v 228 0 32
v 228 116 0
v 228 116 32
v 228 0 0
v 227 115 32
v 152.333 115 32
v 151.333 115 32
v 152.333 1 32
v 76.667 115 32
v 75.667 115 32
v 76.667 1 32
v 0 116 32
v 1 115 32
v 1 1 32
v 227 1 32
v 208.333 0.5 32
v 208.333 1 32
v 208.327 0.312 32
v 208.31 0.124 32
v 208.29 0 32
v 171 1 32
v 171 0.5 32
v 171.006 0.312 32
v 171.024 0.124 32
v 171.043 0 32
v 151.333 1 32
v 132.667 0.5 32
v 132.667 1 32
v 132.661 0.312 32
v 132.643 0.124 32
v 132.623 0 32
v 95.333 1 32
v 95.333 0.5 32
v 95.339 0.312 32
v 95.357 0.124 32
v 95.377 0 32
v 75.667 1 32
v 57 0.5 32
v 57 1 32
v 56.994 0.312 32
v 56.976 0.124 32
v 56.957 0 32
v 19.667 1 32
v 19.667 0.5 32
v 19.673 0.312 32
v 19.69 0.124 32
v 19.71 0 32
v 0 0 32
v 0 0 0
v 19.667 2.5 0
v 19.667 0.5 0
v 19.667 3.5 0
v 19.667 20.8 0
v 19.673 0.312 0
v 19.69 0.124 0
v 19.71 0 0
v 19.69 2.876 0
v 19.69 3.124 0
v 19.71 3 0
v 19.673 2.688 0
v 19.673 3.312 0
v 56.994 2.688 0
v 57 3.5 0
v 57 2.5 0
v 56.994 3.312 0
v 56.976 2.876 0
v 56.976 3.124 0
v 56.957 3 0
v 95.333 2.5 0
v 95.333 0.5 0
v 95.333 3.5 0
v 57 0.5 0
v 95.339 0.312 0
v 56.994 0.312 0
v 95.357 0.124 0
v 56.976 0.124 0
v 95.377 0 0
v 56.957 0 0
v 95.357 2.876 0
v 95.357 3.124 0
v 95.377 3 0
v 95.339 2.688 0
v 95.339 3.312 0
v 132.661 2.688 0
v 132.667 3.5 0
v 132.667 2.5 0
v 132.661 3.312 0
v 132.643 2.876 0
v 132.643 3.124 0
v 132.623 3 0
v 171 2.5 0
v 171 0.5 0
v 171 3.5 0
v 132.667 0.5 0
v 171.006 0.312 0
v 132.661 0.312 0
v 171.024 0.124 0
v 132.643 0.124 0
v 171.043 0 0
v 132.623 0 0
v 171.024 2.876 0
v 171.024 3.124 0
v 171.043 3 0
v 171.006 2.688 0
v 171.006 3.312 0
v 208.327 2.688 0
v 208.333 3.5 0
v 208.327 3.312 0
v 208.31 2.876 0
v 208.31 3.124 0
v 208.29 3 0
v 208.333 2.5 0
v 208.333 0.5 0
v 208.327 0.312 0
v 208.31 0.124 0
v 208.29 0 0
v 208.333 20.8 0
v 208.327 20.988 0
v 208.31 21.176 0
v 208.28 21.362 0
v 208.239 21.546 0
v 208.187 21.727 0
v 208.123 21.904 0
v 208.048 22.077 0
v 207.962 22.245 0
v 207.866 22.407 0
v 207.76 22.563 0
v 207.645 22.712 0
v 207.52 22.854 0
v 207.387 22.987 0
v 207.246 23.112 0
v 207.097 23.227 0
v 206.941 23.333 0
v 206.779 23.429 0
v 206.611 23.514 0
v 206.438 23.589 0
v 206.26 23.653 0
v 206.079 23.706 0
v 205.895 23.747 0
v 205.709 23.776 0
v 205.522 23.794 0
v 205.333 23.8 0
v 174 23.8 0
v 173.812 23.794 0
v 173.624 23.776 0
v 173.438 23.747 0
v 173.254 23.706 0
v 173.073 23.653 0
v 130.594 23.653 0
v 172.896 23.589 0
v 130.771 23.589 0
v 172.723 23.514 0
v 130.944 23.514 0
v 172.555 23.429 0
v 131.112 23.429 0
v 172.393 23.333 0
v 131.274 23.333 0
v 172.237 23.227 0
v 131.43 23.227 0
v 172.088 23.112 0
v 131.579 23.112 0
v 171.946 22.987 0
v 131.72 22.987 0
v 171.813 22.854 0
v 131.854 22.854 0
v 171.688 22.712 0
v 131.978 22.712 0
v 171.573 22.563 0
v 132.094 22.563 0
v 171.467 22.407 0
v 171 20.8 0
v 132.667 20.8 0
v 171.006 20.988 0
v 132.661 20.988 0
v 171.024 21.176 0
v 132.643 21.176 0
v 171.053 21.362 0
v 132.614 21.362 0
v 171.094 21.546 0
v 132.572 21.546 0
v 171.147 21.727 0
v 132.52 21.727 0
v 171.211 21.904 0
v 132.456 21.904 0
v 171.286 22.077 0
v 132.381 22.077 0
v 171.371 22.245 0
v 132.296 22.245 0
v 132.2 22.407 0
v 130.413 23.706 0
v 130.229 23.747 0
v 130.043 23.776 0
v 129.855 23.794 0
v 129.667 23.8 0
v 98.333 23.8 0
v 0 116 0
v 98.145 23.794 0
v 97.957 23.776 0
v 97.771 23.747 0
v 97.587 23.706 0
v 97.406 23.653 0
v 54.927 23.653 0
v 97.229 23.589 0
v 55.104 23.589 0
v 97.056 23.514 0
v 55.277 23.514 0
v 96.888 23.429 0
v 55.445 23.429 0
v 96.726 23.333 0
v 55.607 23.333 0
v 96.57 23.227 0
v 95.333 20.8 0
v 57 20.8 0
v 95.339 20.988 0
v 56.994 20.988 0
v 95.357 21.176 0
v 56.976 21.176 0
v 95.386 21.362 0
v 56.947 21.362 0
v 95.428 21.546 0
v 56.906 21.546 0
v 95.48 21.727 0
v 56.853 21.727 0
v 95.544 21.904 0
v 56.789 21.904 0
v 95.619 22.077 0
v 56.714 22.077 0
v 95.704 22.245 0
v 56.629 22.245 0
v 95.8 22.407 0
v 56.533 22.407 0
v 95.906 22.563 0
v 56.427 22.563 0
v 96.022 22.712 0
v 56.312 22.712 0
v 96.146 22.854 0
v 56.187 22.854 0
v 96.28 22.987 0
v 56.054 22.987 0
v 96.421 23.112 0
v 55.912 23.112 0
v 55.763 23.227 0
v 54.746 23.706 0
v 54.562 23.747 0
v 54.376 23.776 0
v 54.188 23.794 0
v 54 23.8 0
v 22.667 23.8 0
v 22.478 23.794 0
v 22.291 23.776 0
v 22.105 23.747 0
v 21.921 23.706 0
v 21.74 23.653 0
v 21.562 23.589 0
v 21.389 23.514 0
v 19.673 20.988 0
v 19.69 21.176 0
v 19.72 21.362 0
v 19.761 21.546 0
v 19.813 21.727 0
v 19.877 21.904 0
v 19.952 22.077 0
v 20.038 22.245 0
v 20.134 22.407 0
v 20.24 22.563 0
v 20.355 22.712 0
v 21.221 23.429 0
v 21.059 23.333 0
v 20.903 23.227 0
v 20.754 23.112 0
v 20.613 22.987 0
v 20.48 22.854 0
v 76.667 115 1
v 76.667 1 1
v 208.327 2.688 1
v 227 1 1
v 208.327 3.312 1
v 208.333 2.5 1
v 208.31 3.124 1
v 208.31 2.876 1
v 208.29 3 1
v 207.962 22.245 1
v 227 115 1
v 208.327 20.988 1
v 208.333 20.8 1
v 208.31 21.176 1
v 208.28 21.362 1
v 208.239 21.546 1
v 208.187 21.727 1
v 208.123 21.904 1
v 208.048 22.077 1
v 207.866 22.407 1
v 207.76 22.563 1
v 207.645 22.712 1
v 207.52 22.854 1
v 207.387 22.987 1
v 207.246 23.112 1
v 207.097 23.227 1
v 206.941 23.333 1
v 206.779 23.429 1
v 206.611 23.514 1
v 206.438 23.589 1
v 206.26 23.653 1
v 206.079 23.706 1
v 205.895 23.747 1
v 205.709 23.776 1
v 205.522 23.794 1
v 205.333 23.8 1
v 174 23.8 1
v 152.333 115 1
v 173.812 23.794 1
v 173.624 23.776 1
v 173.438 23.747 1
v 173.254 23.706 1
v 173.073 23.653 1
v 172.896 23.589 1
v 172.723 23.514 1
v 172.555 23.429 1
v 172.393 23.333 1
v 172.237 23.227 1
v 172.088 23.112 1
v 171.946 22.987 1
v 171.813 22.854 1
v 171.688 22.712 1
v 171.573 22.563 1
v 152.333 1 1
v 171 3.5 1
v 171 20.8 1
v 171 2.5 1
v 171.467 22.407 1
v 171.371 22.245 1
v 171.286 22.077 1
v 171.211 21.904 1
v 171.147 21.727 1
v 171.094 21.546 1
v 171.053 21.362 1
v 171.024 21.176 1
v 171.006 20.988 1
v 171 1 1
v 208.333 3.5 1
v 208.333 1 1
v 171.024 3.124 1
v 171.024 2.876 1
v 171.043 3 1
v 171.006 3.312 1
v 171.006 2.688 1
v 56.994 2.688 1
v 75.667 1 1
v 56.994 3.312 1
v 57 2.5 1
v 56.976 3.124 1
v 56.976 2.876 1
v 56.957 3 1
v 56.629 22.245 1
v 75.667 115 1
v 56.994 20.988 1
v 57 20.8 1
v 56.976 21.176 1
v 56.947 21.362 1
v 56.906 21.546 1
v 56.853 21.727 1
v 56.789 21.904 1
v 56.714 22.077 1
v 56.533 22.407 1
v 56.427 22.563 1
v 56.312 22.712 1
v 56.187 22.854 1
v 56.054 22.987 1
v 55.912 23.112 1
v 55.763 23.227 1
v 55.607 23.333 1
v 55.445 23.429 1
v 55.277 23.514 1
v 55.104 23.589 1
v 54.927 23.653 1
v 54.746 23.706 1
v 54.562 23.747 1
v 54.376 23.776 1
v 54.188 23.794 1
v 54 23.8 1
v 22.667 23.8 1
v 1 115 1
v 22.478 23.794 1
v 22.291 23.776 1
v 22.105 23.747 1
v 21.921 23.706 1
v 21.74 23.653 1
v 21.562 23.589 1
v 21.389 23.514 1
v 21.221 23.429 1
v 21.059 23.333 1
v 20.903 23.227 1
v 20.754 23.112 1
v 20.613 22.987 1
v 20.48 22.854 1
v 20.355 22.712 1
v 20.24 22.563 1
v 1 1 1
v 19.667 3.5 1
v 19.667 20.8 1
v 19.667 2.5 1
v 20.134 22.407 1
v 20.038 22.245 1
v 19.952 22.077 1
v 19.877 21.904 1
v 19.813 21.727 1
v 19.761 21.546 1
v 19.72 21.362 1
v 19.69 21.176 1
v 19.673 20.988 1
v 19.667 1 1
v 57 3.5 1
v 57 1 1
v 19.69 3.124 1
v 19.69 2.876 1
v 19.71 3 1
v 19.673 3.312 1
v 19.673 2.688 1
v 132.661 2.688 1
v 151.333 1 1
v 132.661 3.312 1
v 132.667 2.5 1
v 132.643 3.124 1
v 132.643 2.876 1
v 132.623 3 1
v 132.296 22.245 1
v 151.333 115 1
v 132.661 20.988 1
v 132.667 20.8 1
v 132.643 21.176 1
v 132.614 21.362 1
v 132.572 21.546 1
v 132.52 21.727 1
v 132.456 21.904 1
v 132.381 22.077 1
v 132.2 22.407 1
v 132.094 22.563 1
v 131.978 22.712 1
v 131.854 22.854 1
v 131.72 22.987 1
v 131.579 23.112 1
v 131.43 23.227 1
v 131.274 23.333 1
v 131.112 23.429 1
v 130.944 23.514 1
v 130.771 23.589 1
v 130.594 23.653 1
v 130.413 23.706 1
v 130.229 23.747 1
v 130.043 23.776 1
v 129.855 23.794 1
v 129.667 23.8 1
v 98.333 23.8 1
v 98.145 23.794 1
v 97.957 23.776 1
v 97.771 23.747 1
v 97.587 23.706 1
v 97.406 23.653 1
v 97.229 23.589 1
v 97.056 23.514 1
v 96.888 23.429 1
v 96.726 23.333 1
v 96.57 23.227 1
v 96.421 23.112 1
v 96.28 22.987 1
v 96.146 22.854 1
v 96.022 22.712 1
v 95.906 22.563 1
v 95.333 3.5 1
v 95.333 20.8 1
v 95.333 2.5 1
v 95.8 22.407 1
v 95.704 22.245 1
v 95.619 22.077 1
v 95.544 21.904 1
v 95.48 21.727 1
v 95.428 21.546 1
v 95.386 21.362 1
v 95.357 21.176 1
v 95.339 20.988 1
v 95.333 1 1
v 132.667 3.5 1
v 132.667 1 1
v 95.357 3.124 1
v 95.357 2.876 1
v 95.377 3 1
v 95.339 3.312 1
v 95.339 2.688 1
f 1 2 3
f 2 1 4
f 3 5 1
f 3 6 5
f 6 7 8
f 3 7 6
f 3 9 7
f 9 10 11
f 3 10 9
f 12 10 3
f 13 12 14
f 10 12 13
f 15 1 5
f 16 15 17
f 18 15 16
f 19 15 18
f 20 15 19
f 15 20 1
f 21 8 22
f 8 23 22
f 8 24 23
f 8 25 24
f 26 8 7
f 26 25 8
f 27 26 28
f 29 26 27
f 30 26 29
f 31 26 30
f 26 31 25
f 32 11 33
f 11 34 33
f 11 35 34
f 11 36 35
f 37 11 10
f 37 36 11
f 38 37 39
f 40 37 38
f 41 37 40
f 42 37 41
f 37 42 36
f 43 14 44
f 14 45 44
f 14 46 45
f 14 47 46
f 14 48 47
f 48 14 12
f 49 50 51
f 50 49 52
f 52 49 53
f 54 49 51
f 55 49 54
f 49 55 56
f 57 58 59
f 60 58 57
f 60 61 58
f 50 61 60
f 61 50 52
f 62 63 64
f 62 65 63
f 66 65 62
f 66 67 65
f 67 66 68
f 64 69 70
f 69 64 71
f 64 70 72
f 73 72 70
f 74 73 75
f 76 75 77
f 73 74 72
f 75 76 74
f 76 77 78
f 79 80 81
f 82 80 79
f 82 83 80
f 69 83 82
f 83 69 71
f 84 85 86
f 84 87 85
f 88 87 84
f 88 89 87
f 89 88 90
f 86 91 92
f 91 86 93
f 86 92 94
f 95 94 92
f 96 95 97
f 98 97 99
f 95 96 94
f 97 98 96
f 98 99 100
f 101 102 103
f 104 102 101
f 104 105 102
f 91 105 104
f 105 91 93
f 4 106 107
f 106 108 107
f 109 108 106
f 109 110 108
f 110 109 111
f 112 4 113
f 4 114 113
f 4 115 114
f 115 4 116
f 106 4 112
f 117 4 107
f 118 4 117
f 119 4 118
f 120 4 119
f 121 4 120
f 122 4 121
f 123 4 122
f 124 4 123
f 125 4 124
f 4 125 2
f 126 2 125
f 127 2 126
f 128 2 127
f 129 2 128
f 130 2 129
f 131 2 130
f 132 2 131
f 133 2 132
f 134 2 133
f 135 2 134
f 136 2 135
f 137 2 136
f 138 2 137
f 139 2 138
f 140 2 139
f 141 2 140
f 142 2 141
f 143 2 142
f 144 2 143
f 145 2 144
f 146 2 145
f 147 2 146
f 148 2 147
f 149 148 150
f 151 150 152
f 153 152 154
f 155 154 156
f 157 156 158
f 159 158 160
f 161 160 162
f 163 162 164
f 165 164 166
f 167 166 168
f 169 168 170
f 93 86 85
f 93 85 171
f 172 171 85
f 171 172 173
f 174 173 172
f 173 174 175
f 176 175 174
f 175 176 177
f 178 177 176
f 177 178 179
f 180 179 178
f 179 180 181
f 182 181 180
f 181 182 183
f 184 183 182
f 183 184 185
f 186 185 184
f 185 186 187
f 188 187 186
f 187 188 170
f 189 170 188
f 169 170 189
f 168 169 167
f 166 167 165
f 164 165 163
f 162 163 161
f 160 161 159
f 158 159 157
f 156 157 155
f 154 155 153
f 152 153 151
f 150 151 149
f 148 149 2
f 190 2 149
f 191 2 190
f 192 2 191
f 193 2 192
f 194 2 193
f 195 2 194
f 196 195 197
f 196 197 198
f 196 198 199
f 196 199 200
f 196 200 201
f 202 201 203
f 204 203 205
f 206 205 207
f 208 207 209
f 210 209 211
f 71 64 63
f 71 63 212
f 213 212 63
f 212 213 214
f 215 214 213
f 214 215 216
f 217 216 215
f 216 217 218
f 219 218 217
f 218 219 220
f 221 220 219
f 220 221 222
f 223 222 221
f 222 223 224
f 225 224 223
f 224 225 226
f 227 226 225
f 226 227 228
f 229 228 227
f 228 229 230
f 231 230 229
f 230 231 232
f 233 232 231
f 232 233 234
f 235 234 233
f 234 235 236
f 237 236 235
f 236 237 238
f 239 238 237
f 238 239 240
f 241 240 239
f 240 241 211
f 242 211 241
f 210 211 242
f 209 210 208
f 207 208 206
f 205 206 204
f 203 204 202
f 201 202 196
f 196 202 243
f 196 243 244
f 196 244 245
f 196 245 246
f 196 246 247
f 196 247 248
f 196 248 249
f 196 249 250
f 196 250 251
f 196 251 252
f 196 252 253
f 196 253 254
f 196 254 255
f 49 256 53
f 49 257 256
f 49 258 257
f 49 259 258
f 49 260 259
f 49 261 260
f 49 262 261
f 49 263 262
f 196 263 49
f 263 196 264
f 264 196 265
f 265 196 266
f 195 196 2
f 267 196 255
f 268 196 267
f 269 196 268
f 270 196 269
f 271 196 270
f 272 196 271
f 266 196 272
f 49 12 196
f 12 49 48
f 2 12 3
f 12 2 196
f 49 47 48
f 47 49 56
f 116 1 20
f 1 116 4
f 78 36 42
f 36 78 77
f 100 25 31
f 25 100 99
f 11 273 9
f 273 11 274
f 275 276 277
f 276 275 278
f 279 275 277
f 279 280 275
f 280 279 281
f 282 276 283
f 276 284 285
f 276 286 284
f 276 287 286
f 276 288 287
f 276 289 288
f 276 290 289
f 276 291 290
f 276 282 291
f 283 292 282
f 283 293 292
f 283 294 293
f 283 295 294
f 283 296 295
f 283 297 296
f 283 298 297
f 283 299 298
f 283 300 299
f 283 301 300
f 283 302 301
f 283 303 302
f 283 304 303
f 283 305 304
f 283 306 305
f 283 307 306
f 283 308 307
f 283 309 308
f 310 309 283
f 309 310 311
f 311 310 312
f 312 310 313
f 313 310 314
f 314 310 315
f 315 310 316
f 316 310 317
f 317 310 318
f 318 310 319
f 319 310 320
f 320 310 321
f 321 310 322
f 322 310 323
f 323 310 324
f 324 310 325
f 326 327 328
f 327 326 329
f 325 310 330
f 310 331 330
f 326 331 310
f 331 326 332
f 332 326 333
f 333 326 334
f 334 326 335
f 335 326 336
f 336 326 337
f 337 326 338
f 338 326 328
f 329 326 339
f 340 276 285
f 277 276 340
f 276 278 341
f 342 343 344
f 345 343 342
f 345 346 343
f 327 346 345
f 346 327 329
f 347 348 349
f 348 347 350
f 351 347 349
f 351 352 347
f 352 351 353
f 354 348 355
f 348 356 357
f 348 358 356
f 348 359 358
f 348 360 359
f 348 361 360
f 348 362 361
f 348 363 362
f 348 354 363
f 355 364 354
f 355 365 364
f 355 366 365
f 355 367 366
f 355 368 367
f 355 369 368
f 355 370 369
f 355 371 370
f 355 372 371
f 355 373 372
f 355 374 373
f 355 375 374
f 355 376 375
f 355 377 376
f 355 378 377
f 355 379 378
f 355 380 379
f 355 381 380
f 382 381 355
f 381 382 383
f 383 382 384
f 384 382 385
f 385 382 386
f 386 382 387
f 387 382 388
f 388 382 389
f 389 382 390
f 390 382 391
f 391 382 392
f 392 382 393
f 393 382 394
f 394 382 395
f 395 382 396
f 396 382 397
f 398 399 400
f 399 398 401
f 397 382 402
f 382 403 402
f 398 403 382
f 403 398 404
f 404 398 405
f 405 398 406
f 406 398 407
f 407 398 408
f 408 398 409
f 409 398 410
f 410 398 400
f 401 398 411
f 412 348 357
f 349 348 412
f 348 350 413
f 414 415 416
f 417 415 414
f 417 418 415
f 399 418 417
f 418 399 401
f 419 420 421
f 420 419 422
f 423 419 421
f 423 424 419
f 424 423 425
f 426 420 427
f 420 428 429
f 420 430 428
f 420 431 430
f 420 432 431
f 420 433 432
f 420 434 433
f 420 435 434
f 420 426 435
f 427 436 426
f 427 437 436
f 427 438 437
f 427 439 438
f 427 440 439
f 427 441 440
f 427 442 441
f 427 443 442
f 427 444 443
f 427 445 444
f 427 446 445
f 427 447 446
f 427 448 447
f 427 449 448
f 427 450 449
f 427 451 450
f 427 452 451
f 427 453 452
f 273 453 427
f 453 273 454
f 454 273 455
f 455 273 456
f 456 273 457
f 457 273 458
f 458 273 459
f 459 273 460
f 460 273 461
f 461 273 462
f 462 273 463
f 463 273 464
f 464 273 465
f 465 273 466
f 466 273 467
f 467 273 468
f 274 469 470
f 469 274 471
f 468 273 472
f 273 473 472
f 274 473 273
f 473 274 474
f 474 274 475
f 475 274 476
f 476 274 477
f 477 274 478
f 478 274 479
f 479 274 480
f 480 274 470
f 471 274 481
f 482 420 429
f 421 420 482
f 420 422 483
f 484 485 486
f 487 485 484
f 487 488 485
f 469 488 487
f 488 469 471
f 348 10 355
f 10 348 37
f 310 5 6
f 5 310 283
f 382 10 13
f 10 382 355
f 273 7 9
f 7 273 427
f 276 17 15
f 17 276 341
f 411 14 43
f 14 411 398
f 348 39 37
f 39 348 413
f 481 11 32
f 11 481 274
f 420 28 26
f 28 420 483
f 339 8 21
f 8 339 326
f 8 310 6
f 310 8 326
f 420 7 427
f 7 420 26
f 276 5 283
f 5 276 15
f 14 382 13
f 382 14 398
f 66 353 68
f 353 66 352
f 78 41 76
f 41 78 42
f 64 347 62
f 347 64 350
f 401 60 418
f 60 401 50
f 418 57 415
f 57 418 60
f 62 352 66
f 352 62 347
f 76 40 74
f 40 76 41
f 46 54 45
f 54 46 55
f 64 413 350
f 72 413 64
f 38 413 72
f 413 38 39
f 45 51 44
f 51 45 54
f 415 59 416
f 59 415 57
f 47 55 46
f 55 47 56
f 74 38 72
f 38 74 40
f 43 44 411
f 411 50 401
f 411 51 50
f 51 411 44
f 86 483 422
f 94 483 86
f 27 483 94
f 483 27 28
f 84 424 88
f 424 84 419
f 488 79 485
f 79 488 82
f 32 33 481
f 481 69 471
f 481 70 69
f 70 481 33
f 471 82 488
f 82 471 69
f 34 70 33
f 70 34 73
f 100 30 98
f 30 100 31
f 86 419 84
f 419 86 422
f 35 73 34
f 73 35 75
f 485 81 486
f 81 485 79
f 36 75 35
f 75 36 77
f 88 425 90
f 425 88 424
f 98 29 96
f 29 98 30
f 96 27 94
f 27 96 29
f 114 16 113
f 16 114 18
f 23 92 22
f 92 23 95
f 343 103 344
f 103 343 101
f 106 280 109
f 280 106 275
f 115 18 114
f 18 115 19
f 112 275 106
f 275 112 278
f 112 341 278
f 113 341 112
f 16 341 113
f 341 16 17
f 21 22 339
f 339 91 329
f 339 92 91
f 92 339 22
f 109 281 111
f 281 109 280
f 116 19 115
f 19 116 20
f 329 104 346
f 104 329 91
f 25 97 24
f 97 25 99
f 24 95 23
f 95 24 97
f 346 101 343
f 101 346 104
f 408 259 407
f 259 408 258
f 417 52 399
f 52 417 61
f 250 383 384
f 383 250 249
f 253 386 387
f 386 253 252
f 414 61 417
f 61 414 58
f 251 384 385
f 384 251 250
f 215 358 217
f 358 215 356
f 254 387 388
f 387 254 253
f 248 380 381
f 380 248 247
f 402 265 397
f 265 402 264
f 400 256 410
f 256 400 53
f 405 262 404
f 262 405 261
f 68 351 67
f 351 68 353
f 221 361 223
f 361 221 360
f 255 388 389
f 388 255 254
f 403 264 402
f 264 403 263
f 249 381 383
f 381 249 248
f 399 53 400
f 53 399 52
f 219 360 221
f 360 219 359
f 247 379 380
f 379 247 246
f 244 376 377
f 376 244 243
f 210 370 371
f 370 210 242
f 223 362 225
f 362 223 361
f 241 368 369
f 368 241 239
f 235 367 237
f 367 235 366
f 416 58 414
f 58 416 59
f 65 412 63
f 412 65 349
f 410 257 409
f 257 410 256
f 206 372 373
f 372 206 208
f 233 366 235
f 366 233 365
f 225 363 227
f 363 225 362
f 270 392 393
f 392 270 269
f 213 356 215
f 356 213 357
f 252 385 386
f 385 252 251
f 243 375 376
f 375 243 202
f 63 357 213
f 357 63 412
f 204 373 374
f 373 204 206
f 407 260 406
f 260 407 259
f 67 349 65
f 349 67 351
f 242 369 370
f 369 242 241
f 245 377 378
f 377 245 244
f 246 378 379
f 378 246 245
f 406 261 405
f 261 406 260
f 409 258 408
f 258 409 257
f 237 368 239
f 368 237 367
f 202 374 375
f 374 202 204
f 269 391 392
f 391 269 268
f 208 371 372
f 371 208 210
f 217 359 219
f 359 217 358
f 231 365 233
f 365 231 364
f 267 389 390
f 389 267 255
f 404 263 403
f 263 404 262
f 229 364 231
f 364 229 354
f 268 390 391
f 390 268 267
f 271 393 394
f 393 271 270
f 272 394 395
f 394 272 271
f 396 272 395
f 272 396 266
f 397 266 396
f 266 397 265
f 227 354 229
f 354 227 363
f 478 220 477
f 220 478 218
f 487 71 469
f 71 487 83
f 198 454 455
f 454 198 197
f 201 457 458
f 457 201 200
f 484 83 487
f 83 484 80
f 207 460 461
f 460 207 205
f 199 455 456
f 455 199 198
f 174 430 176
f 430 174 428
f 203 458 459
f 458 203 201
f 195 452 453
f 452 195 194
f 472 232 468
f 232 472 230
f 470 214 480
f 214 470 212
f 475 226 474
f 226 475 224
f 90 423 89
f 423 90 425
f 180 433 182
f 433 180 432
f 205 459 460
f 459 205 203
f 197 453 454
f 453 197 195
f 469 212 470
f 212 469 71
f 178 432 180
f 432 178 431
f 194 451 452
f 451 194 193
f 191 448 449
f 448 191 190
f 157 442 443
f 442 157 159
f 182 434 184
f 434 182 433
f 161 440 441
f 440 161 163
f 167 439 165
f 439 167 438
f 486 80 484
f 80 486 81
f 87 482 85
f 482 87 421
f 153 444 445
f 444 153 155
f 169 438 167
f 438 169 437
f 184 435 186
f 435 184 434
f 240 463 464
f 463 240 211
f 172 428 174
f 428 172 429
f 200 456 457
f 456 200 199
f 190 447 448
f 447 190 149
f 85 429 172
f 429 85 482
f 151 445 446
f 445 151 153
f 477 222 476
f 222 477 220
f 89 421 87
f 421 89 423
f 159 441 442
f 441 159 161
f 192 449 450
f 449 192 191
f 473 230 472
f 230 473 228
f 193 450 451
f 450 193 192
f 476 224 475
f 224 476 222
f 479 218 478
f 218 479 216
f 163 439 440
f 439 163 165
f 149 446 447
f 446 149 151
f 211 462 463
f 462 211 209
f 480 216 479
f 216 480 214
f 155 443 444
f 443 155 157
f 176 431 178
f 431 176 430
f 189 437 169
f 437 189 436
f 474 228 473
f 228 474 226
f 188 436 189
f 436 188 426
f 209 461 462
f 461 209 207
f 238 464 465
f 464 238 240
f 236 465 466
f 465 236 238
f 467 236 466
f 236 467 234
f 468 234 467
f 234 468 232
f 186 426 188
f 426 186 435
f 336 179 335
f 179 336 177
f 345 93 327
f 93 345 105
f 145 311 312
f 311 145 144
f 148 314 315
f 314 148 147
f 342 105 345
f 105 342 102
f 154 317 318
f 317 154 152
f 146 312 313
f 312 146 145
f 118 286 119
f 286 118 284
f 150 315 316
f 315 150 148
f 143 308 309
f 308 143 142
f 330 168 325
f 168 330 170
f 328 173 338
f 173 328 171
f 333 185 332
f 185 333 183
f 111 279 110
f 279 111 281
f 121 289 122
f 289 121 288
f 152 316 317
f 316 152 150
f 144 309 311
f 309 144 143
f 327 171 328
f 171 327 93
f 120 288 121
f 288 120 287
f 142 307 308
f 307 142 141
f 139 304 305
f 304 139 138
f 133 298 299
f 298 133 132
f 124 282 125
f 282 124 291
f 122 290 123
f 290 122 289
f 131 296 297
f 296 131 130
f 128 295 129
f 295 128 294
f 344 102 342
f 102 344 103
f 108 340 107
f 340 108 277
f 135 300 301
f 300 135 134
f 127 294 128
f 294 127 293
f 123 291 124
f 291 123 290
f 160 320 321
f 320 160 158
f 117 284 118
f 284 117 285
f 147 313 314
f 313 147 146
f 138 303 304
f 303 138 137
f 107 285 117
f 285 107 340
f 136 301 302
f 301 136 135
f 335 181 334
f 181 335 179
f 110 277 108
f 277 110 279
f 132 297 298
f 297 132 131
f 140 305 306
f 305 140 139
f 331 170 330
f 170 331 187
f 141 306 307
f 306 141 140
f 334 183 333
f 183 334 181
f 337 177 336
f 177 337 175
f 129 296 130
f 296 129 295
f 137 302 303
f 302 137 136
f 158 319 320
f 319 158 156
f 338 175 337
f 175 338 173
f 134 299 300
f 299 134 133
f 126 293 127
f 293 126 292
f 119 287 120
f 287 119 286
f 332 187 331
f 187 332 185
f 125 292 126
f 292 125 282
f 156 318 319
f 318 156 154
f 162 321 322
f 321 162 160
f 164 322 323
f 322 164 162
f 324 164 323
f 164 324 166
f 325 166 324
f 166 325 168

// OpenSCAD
include <boardgame_insert_toolkit_lib.2.scad>;

// determines whether lids are output.
g_b_print_lid = true;

// determines whether boxes are output.
g_b_print_box = true; 

// Focus on one box
g_isolated_print_box = ""; 

// Used to visualize how all of the boxes fit together. 
g_b_visualization = false;          
        
// this is the outer wall thickness. 
//Default = 1.5mm
g_wall_thickness = 1.0;

// The tolerance value is extra space put between planes of the lid and box that fit together.
// Increase the tolerance to loosen the fit and decrease it to tighten it.
//
// Note that the tolerance is applied exclusively to the lid.
// So if the lid is too tight or too loose, change this value ( up for looser fit, down for tighter fit ) and 
// you only need to reprint the lid.
// 
// The exception is the stackable box, where the bottom of the box is the lid of the box below,
// in which case the tolerance also affects that box bottom.
//
g_tolerance = 0.15;

// This adjusts the position of the lid detents downward. 
// The larger the value, the bigger the gap between the lid and the box.
g_tolerance_detents_pos = 0.1;

aw_size_x = 228.0; // 180.0; // 308.0 - 40.0 - 40.0 - 24.0 - 24.0 - 24.0 = 156 (minus two for division by 3) = 156;
aw_size_y = 116.0;
aw_size_z = 32.0;


data =
  [
    [
      "simple box",
      [
        [ BOX_SIZE_XYZ, [aw_size_x, aw_size_y, aw_size_z] ],
        [ BOX_NO_LID_B, t],
        [
          BOX_COMPONENT,
          [
            [
              CMP_COMPARTMENT_SIZE_XYZ,
              [
                (aw_size_x - 1.0 - 1.0 - 1.0 - 1.0) / 3.0,
                (aw_size_y - 1.0 - 1.0),
                aw_size_z - g_wall_thickness
              ]
            ],
            [ CMP_NUM_COMPARTMENTS_XY, [3, 1] ],
            [ POSITION_XY, [0, CENTER] ],
            [ CMP_CUTOUT_SIDES_4B,   [t,f,f,f]],
            [ CMP_CUTOUT_DEPTH_PCT,  20],
            [ CMP_CUTOUT_WIDTH_PCT,  50],
            [ CMP_CUTOUT_HEIGHT_PCT, 100], 
          ]
        ],
      ]
    ]
  ];

MakeAll();
